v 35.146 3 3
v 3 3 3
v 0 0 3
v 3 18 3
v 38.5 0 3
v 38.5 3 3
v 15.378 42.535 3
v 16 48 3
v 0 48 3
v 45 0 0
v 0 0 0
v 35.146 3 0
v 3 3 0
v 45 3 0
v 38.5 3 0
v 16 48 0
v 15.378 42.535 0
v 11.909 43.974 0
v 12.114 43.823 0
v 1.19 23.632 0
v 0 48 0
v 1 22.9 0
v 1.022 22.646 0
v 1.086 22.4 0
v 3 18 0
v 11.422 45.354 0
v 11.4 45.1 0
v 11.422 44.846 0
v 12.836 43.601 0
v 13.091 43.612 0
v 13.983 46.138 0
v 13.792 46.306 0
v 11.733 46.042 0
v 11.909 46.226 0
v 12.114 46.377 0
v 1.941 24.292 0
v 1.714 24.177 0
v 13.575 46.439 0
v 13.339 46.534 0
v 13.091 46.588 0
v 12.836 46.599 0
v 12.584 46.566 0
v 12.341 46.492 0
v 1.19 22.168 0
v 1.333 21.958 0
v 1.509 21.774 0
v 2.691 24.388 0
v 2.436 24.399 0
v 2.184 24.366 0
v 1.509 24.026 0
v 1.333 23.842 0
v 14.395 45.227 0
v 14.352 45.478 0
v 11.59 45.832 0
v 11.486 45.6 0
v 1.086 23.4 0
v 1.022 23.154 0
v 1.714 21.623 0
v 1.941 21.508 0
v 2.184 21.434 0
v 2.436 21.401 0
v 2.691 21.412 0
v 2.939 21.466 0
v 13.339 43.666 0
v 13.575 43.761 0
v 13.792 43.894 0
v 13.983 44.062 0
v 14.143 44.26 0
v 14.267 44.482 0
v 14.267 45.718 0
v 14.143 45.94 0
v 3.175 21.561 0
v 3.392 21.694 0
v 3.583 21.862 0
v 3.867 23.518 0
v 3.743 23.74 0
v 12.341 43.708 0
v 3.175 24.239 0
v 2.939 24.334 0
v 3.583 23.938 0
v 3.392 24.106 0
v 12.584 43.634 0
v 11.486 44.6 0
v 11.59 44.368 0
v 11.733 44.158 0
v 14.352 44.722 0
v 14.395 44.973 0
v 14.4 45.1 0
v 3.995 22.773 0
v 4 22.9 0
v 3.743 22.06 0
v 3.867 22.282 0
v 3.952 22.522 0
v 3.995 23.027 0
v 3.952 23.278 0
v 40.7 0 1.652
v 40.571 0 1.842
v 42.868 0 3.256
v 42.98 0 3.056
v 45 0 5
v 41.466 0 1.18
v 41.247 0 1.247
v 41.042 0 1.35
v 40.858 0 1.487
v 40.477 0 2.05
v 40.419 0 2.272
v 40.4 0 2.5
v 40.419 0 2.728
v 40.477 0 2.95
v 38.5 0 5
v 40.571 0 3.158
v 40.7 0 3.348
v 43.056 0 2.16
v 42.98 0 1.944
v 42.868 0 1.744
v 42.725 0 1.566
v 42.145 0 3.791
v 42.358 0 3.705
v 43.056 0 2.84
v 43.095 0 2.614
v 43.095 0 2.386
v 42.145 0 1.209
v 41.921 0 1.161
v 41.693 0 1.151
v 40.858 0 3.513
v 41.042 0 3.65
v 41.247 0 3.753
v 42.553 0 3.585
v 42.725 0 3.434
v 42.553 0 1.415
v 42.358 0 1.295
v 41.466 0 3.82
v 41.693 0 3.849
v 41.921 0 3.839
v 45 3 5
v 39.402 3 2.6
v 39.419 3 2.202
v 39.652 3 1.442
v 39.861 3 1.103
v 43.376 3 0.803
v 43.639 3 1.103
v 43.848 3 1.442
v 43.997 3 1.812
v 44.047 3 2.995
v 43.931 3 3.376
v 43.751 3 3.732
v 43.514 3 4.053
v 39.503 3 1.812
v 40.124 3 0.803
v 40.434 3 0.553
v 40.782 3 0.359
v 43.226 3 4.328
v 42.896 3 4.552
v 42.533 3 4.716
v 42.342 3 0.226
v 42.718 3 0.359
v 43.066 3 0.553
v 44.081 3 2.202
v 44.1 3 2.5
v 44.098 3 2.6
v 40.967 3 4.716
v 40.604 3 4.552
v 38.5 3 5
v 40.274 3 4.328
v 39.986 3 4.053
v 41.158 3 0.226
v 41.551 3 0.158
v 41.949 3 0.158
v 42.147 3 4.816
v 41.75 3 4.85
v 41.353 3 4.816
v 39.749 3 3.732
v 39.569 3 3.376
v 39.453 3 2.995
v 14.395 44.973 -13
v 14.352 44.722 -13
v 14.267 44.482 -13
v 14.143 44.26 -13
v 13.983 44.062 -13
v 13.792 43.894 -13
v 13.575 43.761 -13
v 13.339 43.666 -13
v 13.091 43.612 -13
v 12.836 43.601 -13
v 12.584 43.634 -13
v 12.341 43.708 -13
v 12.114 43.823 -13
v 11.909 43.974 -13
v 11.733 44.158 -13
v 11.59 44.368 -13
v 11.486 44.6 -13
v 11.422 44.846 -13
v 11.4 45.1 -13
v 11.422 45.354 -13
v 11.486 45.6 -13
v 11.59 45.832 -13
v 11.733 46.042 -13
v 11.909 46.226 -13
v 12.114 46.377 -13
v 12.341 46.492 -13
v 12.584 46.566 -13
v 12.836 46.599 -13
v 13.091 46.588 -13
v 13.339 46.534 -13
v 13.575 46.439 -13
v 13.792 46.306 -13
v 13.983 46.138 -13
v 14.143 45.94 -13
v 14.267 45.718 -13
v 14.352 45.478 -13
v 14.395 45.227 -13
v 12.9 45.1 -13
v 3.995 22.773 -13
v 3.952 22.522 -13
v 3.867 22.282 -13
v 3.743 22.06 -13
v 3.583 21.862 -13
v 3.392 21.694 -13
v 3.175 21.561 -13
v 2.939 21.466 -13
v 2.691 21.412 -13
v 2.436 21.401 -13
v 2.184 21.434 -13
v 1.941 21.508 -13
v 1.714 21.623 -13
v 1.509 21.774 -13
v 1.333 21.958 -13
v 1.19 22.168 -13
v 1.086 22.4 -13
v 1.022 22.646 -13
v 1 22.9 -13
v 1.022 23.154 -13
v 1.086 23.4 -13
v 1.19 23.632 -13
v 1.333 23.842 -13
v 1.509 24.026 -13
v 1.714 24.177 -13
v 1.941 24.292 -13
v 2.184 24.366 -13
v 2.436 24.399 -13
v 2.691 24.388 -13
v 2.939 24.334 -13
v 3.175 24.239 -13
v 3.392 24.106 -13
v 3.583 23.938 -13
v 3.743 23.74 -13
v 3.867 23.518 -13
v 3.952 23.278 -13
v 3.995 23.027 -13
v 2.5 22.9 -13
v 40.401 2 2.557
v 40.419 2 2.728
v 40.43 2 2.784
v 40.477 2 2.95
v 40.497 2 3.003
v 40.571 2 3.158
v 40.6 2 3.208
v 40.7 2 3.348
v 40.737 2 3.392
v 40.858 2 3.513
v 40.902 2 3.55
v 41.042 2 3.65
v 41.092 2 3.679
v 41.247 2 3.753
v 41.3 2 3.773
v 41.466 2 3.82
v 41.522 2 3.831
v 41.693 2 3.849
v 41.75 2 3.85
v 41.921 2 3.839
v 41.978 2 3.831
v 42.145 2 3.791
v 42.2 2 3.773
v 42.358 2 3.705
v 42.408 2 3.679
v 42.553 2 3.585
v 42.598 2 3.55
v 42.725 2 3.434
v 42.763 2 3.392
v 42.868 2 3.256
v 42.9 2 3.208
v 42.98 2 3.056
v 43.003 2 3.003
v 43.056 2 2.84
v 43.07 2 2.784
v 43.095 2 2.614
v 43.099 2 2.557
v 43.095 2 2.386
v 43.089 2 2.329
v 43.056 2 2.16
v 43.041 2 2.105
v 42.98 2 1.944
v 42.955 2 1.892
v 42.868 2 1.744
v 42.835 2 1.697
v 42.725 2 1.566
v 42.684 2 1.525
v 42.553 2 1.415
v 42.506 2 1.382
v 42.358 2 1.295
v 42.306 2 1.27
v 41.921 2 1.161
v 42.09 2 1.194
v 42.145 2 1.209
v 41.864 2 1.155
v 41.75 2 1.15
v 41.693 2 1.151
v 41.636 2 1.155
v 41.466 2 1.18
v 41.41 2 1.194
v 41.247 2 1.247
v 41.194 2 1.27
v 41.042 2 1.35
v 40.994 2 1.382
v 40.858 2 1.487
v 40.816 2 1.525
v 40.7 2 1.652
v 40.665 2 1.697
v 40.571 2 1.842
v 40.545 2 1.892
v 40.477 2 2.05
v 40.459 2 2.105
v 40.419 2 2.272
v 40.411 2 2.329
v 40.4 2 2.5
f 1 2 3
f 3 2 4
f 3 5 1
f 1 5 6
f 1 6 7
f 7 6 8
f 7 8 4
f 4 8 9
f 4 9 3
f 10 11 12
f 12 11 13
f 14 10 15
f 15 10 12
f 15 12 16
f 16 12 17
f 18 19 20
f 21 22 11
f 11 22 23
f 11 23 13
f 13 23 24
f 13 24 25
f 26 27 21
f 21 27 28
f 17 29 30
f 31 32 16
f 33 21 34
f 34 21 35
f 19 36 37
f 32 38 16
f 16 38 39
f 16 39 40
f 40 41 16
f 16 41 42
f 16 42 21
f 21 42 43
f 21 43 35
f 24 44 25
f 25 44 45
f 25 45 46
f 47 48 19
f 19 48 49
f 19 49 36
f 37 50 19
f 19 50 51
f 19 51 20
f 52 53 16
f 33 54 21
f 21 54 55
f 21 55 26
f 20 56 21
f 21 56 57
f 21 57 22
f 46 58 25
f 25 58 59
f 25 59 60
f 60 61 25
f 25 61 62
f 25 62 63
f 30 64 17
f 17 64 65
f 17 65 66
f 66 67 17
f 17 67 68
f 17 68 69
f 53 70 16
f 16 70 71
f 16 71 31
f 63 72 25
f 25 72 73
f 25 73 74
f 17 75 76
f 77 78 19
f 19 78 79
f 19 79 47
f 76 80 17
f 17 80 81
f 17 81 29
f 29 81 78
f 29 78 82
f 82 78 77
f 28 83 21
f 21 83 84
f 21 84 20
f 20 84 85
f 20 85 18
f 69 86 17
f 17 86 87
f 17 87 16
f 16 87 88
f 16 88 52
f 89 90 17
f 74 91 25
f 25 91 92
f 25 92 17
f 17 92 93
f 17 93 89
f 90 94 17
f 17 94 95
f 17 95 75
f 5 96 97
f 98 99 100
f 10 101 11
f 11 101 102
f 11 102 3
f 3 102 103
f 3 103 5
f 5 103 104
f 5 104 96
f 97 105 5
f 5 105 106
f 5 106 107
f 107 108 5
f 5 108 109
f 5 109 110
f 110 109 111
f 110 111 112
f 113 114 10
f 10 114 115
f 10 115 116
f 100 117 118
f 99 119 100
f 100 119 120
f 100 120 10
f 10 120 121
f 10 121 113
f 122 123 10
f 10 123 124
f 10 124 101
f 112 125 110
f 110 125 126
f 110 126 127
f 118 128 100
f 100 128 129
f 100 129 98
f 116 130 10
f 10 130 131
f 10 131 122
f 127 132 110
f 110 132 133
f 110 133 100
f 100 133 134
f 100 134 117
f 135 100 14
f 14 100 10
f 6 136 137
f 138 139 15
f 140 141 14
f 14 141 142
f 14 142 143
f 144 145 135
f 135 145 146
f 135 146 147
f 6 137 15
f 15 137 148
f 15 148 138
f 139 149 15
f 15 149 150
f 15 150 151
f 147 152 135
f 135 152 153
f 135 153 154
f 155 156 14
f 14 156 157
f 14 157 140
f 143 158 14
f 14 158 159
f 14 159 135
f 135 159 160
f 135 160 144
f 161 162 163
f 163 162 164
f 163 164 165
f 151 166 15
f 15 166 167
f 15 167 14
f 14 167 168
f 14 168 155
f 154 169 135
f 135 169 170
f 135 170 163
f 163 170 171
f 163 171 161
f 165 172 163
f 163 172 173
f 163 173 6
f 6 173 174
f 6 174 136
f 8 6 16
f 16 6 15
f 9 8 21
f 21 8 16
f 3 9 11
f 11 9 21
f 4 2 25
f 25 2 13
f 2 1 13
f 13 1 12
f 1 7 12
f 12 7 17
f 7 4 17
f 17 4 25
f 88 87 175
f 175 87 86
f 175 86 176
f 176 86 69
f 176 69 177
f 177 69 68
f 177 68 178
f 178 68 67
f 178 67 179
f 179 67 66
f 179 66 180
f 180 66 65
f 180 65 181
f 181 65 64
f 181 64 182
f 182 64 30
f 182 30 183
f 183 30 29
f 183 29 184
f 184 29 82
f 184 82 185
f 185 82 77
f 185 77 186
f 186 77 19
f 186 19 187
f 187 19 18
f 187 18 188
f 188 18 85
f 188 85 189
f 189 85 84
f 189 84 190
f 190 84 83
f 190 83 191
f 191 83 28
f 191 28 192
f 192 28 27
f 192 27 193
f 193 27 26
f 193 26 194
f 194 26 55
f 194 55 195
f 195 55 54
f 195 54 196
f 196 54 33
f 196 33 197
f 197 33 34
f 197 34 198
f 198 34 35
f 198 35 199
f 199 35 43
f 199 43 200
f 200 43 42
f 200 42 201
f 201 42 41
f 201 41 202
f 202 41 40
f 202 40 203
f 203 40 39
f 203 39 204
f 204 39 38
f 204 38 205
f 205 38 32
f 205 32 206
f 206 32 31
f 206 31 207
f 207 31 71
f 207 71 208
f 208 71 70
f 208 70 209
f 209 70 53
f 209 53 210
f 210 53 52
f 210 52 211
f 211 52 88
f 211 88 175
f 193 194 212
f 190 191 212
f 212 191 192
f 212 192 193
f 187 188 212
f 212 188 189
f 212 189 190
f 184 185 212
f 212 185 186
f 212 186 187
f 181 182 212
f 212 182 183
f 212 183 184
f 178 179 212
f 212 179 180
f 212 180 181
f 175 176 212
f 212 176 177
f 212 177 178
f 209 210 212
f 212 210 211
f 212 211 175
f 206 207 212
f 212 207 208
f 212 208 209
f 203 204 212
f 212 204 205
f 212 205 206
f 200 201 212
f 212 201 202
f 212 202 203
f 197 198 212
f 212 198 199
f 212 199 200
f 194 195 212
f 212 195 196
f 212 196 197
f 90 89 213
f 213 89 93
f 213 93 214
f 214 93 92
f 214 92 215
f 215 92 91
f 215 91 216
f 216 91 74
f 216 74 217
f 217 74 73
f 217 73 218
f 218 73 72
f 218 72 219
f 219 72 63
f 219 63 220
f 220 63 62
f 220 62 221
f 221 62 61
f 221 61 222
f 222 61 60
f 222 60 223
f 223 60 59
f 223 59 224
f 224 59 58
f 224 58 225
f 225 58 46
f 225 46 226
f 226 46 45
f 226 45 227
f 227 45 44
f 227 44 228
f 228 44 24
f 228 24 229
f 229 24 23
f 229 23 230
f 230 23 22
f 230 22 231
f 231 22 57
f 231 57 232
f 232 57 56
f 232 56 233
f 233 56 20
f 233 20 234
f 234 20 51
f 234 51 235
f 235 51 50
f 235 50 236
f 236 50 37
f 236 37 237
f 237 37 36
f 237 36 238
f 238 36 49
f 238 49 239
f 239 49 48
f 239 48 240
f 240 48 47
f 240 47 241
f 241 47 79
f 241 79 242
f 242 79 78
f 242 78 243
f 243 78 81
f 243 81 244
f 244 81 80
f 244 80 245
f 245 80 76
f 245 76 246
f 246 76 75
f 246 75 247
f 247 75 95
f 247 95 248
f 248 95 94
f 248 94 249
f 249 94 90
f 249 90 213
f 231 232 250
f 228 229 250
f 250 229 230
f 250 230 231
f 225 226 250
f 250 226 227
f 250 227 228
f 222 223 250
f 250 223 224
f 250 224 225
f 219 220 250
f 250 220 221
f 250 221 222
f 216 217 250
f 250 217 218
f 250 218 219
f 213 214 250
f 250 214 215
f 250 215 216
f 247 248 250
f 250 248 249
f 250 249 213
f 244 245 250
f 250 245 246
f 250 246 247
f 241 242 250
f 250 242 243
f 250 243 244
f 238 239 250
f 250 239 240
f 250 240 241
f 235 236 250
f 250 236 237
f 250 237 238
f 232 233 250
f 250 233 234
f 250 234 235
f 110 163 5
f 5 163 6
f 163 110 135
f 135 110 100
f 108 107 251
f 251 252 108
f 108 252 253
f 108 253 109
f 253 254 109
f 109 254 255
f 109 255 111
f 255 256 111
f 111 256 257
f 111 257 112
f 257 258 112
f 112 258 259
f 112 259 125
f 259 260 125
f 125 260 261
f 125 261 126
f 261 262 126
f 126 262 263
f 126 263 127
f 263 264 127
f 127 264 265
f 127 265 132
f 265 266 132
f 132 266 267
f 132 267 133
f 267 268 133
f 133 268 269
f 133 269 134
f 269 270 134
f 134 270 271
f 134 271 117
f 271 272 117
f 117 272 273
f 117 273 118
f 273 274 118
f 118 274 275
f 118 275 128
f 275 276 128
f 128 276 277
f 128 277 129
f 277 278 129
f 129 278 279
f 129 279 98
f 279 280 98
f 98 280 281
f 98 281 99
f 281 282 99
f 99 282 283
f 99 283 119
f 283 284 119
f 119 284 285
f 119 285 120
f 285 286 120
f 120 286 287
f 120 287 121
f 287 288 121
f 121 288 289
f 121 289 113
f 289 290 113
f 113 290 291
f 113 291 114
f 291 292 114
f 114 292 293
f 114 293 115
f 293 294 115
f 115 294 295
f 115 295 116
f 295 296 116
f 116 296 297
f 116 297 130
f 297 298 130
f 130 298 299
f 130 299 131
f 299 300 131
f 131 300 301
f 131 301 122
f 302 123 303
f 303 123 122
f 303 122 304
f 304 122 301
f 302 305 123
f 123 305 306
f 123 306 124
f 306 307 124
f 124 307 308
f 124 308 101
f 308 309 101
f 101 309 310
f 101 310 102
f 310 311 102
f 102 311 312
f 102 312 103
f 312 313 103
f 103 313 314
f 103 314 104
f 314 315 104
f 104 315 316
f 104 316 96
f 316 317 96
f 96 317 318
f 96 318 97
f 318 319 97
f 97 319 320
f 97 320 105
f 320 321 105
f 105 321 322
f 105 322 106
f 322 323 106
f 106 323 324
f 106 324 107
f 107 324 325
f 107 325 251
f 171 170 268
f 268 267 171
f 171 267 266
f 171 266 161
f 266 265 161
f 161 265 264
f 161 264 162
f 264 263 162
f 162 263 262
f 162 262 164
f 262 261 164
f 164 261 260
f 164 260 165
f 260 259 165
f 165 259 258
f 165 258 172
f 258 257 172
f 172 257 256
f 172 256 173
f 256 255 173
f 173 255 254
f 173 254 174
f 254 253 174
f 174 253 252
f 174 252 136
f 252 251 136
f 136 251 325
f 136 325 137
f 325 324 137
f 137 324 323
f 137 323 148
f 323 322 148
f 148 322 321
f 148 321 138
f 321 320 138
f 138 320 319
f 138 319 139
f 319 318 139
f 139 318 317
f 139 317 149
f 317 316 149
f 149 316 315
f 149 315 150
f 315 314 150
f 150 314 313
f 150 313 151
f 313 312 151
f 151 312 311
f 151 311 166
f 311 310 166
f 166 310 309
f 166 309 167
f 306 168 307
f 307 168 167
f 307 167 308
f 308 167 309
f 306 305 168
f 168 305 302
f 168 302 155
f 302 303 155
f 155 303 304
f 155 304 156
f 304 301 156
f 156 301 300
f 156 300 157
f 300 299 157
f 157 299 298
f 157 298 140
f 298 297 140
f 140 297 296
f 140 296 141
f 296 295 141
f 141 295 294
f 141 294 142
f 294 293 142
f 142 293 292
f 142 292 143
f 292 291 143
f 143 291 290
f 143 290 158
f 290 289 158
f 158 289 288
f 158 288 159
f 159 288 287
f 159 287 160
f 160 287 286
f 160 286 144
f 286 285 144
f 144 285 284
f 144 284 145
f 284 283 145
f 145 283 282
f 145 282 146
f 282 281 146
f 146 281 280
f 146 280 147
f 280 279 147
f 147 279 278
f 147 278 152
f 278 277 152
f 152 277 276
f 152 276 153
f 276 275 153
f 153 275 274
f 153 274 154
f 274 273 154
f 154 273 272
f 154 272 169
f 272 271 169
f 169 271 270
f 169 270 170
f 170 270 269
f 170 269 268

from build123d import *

# Parameters (mm, degrees)
SKICA1_R                     = 1.5
P_IDAT_VYSUNUT_M1_DEPTH      = 3
SKICA2_R                     = 1.5
P_IDAT_VYSUNUT_M2_DEPTH      = 13
P_IDAT_VYSUNUT_M2_DEPTH_BACK = 3
SKICA3_W                     = 6.5
SKICA3_H                     = 3
P_IDAT_VYSUNUT_M3_DEPTH      = 2
SKICA4_R                     = 1.35
ODEBRAT_VYSUNUT_M1_DEPTH     = 3
ZKOSEN_1_SIZE                = 1


with BuildPart() as part:
    # Skica1 → Přidat vysunutím1 (new body)
    with BuildSketch(Plane.XY):
        Polygon((0, 0), (0, 48), (16, 48), (38.5, 3), (45, 3), (45, 0), (40, 0), align=None)
        with Locations((12.9, 45.1)):
            Circle(SKICA1_R, mode=Mode.SUBTRACT)
        with Locations((2.5, 22.9)):
            Circle(SKICA1_R, mode=Mode.SUBTRACT)
        Polygon((3, 3), (35.145898034, 3), (15.37827124, 42.535253588), (3, 18), align=None, mode=Mode.SUBTRACT)
    extrude(amount=P_IDAT_VYSUNUT_M1_DEPTH)

    # Skica2 → Přidat vysunutím2 (add, two sides)
    with BuildSketch(Plane(origin=(0, 0, 0), x_dir=(-1, 0, 0), z_dir=(0, 0, -1))) as p_idat_vysunut_m2_sk:
        with Locations((-12.9, 45.1)):
            Circle(SKICA2_R)
        with Locations((-2.5, 22.9)):
            Circle(SKICA2_R)
    extrude(amount=P_IDAT_VYSUNUT_M2_DEPTH)
    extrude(p_idat_vysunut_m2_sk.sketch, amount=-P_IDAT_VYSUNUT_M2_DEPTH_BACK)

    # Skica3 → Přidat vysunutím3 (add)
    with BuildSketch(Plane.XY.offset(3)):
        with Locations((41.75, 1.5)):
            Rectangle(SKICA3_W, SKICA3_H)
    extrude(amount=P_IDAT_VYSUNUT_M3_DEPTH)

    # Skica4 → Odebrat vysunutím1 (cut)
    with BuildSketch(Plane(origin=(0, 3, 0), x_dir=(1, 0, 0), z_dir=(0, 1, 0))):
        with Locations((41.75, -2.5)):
            Circle(SKICA4_R)
    extrude(amount=-ODEBRAT_VYSUNUT_M1_DEPTH, mode=Mode.SUBTRACT)

    # Zkosení1
    zkosen_1_edges = [part.edges().sort_by_distance(p)[0] for p in [
        (40.4, 3, 2.5),
    ]]
    chamfer(zkosen_1_edges, length=ZKOSEN_1_SIZE)


solid = part.part
